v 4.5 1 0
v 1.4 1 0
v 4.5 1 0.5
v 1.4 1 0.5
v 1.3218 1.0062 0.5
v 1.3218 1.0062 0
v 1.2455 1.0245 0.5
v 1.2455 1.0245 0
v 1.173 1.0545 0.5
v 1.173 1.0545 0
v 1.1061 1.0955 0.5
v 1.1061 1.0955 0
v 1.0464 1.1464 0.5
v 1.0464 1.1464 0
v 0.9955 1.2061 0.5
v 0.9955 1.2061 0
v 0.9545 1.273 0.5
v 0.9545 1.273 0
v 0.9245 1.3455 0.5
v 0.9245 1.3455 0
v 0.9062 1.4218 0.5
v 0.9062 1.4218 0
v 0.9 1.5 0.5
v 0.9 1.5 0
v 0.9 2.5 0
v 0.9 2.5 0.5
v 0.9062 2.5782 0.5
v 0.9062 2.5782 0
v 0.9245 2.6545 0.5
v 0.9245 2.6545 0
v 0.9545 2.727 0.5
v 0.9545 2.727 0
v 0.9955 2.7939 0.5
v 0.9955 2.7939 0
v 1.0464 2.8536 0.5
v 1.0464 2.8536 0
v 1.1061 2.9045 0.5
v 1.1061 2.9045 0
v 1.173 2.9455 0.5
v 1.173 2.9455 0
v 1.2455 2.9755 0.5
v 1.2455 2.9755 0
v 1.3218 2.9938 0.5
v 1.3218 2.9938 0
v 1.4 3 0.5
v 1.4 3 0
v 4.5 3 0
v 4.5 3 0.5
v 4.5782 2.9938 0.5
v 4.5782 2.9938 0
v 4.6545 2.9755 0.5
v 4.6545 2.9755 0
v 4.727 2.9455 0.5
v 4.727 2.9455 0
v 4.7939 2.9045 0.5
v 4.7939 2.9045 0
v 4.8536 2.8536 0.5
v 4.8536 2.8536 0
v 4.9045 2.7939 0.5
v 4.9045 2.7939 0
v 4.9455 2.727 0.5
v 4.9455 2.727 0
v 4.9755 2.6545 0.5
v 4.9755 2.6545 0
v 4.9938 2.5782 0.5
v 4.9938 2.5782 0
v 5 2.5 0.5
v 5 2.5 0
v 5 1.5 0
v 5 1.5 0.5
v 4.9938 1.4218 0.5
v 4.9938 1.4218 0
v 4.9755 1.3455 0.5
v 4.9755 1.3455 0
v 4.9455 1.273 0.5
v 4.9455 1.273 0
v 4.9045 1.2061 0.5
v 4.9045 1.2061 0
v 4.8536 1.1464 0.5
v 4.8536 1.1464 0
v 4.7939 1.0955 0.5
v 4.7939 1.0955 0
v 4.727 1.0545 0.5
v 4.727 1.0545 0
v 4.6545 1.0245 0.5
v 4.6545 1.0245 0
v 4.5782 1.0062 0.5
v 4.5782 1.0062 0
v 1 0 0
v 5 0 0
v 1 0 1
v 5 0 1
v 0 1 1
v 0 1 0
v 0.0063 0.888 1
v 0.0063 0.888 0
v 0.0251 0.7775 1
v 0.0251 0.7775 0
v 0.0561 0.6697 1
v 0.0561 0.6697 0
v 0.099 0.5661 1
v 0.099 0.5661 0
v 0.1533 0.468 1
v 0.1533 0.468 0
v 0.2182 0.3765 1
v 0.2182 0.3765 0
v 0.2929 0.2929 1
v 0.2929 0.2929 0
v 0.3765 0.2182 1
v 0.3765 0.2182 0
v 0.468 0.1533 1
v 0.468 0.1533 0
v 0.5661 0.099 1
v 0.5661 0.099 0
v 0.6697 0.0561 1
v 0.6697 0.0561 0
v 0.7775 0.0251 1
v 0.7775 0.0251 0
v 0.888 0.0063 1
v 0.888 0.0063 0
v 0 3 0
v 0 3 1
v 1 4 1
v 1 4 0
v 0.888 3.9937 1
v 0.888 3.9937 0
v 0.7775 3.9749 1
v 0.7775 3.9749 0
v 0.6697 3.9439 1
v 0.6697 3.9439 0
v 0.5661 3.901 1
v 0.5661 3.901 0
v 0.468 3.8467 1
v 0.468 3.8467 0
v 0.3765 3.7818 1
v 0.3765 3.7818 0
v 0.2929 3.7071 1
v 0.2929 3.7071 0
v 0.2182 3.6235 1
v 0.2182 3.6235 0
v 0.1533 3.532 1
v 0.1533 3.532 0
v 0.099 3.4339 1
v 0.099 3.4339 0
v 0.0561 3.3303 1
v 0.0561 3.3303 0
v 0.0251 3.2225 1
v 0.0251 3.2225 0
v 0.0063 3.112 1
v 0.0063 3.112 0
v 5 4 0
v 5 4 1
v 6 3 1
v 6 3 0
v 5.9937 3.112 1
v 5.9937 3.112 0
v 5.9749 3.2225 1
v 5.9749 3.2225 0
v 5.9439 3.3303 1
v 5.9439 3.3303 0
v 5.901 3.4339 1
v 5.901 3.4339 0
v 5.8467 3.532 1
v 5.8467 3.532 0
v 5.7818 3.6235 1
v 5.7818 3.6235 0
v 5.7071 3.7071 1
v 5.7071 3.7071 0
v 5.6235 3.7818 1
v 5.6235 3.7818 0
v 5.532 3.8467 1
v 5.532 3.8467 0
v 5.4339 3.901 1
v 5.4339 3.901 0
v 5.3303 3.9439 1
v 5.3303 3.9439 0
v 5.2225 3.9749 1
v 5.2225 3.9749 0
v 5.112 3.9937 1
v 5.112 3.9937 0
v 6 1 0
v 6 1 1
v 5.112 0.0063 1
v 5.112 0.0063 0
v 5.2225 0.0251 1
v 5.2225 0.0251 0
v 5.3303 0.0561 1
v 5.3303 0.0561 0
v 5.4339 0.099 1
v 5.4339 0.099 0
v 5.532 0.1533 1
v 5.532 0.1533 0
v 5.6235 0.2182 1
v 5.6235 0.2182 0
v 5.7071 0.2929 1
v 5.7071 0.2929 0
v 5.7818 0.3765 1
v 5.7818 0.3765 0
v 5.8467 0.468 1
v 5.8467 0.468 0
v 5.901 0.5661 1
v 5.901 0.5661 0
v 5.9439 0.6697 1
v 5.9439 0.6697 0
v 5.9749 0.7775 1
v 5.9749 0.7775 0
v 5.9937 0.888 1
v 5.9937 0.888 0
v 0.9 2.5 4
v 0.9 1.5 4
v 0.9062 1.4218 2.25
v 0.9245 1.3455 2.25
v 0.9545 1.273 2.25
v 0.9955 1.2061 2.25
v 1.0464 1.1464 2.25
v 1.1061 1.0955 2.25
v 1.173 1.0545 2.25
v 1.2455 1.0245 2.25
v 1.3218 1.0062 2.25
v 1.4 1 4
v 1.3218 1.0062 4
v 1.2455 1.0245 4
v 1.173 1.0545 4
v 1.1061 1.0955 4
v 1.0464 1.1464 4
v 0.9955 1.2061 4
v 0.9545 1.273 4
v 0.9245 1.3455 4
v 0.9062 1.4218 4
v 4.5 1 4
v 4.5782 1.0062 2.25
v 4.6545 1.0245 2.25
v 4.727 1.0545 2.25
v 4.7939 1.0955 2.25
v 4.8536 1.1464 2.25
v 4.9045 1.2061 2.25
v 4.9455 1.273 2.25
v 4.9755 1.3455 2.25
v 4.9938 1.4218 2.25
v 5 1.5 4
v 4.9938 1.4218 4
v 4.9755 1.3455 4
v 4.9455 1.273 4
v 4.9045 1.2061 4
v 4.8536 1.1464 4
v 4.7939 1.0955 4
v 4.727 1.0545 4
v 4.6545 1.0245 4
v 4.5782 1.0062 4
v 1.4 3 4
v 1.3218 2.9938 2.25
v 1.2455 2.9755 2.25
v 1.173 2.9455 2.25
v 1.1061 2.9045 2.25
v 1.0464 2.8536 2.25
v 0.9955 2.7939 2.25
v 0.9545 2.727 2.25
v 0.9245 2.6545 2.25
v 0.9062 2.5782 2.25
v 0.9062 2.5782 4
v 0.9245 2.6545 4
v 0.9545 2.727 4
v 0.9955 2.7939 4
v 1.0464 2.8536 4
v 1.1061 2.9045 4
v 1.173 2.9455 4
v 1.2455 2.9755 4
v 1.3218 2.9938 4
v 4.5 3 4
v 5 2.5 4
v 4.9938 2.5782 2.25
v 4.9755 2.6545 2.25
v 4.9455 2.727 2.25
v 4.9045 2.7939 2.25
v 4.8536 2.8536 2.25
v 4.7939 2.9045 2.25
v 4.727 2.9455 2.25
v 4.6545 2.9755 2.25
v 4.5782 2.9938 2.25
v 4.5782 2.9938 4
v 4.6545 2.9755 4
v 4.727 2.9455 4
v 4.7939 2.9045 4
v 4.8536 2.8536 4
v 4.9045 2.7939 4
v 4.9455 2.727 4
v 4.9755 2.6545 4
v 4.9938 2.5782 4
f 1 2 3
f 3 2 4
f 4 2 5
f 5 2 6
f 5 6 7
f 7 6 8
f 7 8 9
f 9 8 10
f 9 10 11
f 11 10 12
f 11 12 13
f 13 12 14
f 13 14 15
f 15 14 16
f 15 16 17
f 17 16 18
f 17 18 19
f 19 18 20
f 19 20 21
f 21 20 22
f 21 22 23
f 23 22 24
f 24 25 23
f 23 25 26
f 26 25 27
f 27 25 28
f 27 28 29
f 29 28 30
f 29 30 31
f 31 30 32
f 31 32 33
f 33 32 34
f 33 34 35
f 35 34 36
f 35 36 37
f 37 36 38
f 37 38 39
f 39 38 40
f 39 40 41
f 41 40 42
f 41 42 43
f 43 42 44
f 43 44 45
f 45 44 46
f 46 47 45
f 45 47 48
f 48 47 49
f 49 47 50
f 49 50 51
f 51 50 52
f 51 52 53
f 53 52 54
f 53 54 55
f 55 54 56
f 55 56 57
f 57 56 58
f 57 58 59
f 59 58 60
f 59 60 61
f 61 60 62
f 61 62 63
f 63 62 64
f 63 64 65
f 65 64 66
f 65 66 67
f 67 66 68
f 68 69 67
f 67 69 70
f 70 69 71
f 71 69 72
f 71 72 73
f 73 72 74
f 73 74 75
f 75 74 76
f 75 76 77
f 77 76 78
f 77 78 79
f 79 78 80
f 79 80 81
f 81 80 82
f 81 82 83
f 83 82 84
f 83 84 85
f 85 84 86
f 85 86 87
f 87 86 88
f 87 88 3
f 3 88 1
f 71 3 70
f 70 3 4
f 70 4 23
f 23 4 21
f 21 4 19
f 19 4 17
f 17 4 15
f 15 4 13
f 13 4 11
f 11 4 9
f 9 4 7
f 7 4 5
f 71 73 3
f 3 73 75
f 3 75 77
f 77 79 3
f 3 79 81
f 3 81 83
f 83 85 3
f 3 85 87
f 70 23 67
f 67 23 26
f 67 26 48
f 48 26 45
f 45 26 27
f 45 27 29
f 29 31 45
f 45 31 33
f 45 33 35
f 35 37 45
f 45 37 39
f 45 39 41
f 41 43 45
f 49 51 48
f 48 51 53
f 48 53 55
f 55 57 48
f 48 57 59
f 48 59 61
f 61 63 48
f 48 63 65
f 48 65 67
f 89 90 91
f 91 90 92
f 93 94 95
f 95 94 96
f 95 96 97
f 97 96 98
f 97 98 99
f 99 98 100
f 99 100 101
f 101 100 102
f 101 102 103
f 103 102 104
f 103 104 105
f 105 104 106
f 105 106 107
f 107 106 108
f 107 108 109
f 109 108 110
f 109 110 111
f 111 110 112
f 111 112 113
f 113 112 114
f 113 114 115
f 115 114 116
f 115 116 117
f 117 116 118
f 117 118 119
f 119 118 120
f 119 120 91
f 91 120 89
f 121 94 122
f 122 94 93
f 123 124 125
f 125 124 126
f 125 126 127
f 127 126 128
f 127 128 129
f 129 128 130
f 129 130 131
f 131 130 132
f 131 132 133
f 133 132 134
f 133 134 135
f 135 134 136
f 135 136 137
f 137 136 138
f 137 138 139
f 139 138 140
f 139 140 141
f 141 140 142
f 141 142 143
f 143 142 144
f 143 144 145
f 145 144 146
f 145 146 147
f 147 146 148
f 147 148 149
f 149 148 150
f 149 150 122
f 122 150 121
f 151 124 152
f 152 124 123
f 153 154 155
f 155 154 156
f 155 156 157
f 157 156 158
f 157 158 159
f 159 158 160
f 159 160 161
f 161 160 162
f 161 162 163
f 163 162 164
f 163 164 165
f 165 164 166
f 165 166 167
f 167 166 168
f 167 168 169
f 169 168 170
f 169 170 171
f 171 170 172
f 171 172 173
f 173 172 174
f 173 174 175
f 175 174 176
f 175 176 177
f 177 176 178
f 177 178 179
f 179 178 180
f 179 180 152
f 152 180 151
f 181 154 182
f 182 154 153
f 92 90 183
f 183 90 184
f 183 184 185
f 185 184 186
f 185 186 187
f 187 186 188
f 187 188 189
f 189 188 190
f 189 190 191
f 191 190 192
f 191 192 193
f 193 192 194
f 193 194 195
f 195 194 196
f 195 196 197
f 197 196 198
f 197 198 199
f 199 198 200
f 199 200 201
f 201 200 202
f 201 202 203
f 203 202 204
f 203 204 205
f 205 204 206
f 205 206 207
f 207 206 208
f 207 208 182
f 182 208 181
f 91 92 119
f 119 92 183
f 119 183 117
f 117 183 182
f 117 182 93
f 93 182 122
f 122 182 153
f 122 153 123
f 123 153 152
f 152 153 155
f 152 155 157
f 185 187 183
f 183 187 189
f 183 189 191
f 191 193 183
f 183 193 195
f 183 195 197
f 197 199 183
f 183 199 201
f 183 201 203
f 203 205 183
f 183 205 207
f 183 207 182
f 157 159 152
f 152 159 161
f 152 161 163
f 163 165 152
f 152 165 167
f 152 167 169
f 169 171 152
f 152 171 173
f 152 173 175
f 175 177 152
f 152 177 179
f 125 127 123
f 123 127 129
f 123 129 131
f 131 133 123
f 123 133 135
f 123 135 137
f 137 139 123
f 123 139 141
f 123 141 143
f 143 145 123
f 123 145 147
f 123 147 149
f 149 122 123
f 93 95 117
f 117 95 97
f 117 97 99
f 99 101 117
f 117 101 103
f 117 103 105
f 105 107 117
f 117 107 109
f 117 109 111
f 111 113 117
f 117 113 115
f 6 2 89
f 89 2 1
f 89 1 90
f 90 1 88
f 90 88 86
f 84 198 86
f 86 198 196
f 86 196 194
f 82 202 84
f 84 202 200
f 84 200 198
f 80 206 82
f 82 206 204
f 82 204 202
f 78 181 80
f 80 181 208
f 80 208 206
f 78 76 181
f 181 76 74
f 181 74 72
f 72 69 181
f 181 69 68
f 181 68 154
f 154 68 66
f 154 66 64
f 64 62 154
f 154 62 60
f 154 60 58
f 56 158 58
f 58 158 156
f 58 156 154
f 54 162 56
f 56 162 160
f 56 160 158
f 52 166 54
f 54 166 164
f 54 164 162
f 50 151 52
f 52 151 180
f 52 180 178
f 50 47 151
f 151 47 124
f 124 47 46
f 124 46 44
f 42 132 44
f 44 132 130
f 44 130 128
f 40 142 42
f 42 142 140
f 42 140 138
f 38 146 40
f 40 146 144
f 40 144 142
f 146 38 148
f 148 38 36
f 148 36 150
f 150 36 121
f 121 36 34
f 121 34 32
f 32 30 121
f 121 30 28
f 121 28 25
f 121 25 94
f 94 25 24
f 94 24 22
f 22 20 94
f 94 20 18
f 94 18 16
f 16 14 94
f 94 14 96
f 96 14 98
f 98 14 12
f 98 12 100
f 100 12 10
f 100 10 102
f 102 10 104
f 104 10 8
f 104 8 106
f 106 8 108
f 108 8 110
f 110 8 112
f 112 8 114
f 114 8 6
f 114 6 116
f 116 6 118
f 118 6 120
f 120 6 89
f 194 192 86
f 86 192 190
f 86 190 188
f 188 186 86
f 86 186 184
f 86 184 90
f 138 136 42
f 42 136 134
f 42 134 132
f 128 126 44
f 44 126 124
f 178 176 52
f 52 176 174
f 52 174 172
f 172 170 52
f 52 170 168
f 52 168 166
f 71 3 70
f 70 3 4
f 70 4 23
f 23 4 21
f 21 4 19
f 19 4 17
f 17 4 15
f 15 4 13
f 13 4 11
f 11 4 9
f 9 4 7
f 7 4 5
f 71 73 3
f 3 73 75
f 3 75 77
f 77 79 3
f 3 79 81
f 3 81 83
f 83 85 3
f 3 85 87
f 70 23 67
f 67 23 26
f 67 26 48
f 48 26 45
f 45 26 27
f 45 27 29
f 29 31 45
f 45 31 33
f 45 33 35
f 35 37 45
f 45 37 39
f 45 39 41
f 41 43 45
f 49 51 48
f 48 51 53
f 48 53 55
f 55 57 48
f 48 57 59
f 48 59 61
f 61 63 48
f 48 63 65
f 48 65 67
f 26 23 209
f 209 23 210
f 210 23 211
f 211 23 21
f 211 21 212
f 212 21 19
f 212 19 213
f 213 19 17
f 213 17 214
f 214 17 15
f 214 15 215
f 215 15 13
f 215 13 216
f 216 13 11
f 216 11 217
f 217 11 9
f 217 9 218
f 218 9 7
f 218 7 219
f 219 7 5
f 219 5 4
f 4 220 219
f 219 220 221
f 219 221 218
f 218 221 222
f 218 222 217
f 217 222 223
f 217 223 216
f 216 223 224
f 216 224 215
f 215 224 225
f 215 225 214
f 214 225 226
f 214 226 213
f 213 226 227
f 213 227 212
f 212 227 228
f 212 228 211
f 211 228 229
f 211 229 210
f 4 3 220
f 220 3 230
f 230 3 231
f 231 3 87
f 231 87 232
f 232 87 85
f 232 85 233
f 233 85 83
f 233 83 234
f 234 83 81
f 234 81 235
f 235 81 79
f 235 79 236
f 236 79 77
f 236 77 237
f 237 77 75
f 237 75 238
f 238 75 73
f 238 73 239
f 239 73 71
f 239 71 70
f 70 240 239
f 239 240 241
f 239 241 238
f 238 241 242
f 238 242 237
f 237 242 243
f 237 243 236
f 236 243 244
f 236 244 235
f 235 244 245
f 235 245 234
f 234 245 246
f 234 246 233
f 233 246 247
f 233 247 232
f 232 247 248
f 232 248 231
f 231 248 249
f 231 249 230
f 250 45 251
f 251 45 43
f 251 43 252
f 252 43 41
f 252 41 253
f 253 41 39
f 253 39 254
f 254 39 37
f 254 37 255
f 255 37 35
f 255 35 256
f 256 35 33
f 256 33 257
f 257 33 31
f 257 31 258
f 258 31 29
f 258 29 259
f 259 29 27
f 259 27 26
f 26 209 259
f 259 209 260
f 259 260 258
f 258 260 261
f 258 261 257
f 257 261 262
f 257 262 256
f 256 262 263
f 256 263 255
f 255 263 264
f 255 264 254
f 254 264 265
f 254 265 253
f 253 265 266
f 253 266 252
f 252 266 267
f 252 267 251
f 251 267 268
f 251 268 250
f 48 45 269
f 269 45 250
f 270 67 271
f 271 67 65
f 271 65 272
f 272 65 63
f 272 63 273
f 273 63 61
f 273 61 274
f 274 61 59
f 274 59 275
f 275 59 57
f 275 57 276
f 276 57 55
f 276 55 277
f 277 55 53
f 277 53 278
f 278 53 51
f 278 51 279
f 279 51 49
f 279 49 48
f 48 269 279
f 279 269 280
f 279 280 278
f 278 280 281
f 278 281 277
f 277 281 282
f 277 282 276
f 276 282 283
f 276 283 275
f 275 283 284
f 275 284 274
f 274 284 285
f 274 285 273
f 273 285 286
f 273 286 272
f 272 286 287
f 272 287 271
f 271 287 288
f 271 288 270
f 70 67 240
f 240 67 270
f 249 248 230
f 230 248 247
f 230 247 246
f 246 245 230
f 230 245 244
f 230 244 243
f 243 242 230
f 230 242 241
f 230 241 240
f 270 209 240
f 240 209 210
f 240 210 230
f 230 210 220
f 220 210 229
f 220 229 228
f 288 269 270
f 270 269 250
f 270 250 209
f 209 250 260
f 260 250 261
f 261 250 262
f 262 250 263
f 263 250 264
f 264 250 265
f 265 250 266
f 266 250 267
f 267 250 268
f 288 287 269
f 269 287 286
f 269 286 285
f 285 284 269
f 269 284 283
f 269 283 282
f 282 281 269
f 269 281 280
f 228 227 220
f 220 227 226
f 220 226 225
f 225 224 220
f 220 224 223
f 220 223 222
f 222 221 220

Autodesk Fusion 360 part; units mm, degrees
sketch "草图1" plane through (0, 0, 0) normal (0, 0, 1) x (1, 0, 0)
  line L0 (1, 0) -> (5, 0)
  line L1 (6, 1) -> (6, 3)
  line L2 (5, 4) -> (1, 4)
  line L3 (0, 3) -> (0, 1)
  arc A0 (1, 4) -> (0, 3) centre (1, 3) ccw
  arc A1 (6, 3) -> (5, 4) centre (5, 3) ccw
  arc A2 (0, 1) -> (1, 0) centre (1, 1) ccw
  arc A3 (5, 0) -> (6, 1) centre (5, 1) ccw
  point P0 (6, 0)
  point P1 (0, 4)
  dimension "d1" = 6
  dimension "d2" = 4
  dimension "d3" = 1
  dimension "d4" = 1
  dimension "d5" = 1
  dimension "d6" = 1
extrude "拉伸1" add sketch "草图1" along normal blind 1 makes body 1
sketch "草图2" plane through (0, 0, 0) normal (0, 0, 1) x (1, 0, 0)
  line L0 (1.4, 1) -> (4.5, 1)
  line L1 (5, 1.5) -> (5, 2.5)
  line L2 (4.5, 3) -> (1.4, 3)
  line L3 (0.9, 2.5) -> (0.9, 1.5)
  arc A0 (1.4, 3) -> (0.9, 2.5) centre (1.4, 2.5) ccw
  arc A1 (5, 2.5) -> (4.5, 3) centre (4.5, 2.5) ccw
  arc A2 (0.9, 1.5) -> (1.4, 1) centre (1.4, 1.5) ccw
  arc A3 (4.5, 1) -> (5, 1.5) centre (4.5, 1.5) ccw
  dimension "d9" = 0.5
  dimension "d10" = 0.5
  dimension "d11" = 0.5
  dimension "d12" = 0.5
extrude "拉伸2" add sketch "草图2" along normal blind 4 separate body makes body 2
extrude "拉伸3" cut sketch "草图2" along normal blind 0.5 bodies 1 2
